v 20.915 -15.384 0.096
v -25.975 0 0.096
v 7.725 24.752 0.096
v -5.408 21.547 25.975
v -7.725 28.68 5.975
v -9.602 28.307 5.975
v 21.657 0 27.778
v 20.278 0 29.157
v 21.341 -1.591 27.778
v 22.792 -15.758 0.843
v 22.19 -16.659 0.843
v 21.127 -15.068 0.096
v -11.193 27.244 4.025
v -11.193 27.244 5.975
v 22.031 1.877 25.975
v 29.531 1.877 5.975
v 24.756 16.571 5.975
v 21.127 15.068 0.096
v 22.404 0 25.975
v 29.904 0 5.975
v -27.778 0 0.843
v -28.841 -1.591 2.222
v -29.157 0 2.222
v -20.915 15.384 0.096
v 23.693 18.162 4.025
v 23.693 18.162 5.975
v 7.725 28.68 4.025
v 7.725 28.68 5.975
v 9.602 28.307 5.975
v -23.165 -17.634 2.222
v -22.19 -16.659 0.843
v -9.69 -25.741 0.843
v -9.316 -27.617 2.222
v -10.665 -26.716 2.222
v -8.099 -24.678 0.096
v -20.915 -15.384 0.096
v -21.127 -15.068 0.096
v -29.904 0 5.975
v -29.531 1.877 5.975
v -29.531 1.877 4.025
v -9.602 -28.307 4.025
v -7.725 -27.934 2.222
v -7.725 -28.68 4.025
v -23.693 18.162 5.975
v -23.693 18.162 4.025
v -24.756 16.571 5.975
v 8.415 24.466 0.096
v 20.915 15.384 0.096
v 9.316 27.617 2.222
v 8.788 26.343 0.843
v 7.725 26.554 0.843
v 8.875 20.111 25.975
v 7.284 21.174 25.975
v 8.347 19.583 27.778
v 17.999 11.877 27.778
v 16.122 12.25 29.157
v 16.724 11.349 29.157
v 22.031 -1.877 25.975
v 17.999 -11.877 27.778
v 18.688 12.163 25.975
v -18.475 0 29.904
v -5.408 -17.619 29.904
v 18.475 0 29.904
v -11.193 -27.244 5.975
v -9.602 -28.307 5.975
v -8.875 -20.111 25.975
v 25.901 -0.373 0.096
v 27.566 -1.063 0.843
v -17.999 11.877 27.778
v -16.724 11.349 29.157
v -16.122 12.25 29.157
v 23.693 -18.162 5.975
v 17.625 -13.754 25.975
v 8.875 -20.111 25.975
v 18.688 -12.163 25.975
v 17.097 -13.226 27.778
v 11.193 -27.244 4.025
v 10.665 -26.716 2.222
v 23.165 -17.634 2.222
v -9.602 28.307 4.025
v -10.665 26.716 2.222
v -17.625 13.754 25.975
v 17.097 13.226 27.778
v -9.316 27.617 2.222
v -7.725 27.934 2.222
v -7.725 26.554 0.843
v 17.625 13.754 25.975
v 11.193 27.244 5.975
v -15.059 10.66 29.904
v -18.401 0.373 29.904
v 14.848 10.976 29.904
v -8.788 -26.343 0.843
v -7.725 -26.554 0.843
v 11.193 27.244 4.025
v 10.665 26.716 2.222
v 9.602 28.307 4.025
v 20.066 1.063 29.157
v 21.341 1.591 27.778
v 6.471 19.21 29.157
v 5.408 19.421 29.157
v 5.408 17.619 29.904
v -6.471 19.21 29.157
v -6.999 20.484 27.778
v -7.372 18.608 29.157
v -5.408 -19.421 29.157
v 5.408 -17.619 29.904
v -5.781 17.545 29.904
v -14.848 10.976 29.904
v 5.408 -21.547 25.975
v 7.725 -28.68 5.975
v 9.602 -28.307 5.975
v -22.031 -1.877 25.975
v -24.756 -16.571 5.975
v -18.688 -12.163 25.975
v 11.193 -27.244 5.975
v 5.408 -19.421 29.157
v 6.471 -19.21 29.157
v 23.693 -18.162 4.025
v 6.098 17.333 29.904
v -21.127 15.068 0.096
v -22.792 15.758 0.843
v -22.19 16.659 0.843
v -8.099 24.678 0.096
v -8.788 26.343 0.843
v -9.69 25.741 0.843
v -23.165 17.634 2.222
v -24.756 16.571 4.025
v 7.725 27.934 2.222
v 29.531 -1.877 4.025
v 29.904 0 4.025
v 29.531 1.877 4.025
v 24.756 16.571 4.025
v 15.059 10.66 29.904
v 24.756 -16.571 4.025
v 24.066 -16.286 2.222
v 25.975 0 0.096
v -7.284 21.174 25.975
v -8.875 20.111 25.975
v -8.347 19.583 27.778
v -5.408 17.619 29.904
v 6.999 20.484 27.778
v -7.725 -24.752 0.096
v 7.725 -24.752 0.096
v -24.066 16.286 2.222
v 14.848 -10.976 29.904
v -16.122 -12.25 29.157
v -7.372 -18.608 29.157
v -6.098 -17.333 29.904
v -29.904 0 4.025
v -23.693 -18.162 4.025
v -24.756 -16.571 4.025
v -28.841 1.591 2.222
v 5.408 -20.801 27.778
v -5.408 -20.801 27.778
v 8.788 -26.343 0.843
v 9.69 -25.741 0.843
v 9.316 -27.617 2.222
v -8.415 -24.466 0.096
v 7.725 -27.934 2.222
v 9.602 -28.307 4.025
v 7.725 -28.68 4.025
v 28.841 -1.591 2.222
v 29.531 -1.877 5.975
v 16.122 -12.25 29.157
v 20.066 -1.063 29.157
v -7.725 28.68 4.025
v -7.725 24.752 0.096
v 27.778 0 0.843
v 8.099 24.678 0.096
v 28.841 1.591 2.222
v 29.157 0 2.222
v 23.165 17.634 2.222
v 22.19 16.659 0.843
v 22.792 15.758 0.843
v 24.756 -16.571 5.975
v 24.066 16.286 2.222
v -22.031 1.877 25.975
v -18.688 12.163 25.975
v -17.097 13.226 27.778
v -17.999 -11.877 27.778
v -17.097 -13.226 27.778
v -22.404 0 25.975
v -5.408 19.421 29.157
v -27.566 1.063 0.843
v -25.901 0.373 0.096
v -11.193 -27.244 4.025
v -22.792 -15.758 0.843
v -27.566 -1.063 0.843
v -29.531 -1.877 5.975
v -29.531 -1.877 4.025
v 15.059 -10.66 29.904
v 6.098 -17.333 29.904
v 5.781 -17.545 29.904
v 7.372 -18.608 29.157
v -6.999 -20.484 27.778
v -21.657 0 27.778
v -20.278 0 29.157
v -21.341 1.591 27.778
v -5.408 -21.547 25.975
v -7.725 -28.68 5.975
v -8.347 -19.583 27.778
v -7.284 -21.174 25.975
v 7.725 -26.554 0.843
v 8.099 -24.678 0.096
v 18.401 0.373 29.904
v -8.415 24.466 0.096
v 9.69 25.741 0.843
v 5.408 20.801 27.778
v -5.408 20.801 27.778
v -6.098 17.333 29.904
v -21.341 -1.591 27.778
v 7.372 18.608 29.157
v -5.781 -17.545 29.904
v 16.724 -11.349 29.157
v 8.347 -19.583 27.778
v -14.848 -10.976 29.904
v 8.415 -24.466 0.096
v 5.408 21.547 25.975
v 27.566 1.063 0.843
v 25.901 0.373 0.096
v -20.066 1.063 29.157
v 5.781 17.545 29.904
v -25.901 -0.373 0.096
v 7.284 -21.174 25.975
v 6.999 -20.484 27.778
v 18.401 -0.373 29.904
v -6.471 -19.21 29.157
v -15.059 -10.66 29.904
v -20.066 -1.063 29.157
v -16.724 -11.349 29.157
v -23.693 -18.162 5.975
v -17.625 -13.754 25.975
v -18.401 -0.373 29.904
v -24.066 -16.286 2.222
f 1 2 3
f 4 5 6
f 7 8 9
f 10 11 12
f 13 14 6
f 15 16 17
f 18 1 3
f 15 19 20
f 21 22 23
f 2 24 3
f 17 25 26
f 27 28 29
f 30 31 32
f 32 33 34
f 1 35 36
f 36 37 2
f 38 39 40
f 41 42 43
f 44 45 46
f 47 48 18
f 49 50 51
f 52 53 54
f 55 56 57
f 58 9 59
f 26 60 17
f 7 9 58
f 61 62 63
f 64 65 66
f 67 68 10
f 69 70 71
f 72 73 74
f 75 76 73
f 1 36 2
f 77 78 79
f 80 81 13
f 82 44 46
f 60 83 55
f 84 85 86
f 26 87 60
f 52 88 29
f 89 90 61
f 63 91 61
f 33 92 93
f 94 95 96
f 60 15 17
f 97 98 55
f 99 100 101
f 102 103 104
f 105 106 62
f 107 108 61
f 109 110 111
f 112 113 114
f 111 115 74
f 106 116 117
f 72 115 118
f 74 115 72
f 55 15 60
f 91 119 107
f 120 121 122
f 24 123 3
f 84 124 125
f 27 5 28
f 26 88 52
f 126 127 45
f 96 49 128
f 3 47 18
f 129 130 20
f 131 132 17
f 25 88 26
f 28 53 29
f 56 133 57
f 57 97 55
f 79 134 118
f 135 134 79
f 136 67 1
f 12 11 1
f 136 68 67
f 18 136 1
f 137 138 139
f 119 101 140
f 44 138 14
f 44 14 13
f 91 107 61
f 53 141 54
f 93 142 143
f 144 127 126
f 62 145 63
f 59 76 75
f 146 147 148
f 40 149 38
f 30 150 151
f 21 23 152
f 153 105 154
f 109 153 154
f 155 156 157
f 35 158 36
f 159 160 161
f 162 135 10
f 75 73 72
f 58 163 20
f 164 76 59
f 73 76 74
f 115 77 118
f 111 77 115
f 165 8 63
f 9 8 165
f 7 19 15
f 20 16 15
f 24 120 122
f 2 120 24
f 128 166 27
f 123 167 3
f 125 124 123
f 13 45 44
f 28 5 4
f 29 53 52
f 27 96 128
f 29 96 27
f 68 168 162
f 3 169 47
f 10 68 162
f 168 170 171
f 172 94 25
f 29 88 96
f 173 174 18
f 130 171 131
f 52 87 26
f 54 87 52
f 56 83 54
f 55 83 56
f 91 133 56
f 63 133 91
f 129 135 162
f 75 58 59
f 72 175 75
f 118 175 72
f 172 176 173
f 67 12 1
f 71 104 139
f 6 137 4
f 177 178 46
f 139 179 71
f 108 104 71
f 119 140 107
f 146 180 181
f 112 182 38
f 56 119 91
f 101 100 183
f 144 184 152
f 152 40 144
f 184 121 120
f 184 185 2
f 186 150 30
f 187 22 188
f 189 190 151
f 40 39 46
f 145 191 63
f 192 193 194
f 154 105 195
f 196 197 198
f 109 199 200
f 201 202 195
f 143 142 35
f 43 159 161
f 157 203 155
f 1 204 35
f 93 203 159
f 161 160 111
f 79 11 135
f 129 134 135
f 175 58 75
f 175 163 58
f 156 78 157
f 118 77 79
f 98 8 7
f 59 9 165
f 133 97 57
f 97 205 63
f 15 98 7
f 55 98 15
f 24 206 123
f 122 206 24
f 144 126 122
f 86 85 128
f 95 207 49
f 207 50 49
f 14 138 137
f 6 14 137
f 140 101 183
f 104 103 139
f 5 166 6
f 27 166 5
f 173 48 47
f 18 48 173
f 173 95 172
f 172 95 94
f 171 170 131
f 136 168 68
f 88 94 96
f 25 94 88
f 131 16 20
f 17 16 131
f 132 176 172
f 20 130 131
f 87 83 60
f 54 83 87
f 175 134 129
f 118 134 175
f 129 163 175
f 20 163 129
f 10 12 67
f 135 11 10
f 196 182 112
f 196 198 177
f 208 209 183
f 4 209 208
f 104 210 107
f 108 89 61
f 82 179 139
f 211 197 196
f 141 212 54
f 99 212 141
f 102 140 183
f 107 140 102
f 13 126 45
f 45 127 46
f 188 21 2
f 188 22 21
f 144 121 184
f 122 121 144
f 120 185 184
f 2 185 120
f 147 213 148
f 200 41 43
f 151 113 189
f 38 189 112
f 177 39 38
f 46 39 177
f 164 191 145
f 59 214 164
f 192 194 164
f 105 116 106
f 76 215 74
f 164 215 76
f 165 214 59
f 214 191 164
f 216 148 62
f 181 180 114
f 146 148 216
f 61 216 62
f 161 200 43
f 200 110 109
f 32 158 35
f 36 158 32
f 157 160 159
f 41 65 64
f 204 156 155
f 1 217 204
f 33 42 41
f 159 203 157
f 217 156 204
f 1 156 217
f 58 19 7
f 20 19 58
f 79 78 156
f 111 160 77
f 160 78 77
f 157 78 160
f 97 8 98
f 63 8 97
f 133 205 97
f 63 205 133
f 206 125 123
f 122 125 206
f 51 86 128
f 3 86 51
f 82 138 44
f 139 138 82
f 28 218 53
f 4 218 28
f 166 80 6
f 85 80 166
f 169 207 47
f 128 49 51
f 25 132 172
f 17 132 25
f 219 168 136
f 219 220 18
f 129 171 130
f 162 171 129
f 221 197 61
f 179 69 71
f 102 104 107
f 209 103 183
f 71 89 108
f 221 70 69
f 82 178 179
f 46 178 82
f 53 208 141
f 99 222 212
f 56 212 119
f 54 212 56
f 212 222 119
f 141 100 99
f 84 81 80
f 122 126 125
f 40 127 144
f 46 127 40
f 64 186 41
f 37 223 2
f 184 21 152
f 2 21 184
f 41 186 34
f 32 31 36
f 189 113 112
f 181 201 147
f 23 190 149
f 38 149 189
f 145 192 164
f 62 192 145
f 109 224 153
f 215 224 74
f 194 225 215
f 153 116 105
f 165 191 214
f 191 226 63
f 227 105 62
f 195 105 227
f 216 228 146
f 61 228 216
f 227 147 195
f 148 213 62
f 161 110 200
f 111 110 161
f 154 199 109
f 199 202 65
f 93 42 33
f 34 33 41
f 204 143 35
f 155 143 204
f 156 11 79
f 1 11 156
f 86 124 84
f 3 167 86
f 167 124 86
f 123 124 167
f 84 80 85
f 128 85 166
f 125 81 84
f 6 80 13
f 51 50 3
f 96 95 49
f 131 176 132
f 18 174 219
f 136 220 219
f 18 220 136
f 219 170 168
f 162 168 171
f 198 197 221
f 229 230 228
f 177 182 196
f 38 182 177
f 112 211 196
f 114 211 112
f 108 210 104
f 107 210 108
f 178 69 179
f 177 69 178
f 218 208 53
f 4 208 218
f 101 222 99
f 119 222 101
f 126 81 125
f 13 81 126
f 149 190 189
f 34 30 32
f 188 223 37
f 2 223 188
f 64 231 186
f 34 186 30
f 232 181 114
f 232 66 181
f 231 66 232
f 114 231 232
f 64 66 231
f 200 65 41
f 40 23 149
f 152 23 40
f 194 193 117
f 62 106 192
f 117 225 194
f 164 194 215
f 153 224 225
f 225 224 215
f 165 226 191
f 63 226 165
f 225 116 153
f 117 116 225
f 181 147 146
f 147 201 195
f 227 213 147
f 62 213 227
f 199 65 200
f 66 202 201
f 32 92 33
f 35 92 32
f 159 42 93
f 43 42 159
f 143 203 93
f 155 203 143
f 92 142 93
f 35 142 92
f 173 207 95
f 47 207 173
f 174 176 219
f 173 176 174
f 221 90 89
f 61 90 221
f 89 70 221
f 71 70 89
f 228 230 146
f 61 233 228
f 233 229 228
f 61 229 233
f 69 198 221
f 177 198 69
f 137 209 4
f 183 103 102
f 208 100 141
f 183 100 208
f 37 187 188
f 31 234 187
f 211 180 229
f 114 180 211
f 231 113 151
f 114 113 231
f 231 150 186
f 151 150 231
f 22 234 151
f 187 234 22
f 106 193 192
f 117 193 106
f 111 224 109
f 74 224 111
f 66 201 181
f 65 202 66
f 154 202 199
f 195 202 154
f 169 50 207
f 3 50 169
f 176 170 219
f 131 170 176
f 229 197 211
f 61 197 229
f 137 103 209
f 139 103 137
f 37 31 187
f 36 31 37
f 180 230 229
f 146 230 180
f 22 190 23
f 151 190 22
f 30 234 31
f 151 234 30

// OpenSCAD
// 30 high

translate([0,0,15])
minkowski() {
 cylinder($fn=10, h=20, d1=50,  d2=35, center=true);
 sphere(r = 5);
}
